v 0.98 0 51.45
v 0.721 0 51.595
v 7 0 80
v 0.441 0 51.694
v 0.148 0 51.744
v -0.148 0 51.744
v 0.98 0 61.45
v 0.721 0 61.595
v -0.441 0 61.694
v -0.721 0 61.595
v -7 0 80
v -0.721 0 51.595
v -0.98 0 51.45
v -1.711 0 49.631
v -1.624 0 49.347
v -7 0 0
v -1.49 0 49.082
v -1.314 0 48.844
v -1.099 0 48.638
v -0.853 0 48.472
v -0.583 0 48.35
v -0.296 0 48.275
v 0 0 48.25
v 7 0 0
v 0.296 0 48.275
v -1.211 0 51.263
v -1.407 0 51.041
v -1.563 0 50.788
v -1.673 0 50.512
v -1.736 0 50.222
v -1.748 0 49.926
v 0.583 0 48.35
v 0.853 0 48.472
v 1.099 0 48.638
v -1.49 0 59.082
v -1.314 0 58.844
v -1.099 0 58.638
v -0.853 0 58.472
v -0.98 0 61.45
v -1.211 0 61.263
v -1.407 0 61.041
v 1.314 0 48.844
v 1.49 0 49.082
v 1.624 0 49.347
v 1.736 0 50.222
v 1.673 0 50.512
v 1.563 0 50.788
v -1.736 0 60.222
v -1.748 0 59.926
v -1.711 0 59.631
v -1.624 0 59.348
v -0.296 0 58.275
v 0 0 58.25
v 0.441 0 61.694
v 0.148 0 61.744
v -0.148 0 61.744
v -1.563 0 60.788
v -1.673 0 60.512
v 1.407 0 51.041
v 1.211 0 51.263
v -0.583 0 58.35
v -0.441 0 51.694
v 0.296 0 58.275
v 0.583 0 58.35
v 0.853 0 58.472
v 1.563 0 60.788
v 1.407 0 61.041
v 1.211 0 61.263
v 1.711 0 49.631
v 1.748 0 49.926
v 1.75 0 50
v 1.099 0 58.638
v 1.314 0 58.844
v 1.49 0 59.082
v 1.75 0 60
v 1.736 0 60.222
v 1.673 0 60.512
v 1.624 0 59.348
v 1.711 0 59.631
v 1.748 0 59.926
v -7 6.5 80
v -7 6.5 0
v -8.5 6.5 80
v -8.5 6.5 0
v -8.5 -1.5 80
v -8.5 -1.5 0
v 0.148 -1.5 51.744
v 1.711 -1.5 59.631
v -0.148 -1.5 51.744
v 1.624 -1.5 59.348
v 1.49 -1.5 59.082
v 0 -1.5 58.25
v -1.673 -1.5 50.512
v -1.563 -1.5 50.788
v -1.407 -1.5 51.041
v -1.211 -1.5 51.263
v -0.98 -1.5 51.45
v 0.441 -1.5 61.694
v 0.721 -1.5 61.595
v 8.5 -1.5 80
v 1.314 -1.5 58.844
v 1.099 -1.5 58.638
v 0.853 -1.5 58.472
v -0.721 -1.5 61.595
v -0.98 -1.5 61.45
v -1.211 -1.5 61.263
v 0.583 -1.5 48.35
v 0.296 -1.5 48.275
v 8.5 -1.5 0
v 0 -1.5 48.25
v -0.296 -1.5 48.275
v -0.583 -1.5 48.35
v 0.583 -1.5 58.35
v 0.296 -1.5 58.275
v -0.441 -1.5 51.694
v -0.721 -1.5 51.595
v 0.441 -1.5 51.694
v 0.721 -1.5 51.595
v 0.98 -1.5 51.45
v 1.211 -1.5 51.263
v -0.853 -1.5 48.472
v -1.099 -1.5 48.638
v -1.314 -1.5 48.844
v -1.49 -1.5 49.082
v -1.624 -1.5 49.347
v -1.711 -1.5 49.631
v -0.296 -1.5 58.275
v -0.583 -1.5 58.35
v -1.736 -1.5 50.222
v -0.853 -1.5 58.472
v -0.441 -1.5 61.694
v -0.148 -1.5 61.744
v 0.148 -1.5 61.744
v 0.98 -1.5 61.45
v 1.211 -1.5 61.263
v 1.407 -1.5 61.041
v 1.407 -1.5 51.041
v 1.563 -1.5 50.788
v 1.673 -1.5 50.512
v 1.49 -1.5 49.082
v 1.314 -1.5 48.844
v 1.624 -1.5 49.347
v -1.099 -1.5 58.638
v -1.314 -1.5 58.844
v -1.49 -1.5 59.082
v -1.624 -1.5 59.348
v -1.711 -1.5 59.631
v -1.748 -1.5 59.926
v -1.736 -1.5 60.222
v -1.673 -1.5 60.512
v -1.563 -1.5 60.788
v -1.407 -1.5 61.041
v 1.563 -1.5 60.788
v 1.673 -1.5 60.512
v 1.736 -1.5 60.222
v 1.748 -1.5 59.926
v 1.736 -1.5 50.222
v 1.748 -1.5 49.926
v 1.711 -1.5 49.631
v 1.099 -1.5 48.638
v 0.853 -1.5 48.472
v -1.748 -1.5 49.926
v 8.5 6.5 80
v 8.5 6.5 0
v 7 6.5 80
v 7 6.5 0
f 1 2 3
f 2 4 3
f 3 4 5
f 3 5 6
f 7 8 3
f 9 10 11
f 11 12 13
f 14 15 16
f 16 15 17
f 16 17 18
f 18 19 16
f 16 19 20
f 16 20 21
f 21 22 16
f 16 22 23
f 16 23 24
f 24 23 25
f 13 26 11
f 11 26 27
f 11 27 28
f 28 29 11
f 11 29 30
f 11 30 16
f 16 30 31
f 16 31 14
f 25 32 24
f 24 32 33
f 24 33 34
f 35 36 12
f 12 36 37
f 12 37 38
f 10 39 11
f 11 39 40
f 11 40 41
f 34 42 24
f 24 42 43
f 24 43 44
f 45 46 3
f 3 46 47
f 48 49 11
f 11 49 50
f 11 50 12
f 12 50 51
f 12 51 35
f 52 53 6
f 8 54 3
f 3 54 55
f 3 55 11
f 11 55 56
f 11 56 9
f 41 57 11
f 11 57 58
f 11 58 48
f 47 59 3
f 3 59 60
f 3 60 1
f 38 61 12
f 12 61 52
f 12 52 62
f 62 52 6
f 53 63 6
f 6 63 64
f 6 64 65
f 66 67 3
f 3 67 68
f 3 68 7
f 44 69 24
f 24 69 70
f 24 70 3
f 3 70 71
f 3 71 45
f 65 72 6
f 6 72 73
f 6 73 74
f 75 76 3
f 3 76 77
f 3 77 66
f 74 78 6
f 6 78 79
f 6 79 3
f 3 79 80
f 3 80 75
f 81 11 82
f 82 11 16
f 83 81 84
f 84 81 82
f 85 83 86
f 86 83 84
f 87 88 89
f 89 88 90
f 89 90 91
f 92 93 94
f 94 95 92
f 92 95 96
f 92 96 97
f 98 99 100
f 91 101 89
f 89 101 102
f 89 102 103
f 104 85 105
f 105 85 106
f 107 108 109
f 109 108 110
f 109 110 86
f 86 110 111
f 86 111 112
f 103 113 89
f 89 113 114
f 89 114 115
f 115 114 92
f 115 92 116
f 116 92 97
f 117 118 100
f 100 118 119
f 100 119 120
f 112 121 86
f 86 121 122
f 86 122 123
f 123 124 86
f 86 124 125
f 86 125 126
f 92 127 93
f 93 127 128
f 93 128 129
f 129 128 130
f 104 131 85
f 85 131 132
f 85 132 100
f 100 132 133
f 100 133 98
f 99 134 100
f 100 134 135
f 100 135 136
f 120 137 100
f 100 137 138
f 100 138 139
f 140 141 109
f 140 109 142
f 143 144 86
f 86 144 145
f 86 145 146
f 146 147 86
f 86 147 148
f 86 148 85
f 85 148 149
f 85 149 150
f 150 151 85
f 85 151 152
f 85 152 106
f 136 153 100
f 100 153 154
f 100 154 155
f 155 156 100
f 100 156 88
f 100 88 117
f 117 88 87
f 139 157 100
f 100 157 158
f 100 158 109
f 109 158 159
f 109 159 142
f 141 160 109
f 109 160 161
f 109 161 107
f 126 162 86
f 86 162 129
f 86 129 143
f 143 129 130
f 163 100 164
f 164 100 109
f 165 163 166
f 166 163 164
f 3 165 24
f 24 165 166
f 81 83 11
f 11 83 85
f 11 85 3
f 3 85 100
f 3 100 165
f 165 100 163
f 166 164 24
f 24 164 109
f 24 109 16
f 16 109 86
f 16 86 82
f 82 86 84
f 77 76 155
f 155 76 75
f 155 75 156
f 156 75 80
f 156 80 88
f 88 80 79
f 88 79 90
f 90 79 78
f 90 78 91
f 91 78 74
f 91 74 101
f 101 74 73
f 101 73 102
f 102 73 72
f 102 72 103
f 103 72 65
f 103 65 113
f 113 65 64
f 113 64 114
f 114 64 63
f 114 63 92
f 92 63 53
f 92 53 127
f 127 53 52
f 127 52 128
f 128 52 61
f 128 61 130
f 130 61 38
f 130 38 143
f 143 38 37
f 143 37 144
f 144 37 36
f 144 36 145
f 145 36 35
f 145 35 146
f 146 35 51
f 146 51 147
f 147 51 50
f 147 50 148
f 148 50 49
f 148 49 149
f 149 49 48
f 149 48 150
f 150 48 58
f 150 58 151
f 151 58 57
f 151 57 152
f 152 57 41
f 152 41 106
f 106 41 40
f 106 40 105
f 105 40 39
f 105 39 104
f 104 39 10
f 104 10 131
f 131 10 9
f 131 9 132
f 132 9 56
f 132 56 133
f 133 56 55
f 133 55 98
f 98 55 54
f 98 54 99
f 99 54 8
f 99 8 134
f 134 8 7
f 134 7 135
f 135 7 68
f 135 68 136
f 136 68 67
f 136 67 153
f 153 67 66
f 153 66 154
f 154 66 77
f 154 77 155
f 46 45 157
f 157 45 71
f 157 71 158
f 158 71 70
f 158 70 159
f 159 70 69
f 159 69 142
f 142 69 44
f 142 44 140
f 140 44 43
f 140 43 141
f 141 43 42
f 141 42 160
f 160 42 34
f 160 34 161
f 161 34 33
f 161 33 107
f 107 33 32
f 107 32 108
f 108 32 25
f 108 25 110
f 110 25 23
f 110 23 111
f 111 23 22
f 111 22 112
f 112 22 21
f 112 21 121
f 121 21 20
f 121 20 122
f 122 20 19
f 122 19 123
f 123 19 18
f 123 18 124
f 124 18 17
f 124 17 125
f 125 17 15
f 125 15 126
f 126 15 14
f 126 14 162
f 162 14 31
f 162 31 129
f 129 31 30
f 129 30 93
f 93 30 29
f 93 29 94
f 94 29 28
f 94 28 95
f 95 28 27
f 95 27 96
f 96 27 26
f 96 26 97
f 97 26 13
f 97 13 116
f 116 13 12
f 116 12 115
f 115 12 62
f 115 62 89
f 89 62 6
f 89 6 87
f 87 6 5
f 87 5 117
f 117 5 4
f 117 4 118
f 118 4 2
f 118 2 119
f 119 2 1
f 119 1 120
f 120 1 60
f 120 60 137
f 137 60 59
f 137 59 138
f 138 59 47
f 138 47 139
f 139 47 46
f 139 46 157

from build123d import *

# Parameters (mm, degrees)
EXTRUDE_1_DEPTH     = 80
SKETCH_2_R          = 1.75
CUT_EXTRUDE_1_DEPTH = 81.847077869


with BuildPart() as part:
    # ｽｹｯﾁ1 → ﾎﾞｽ - 押し出し1 (new body)
    with BuildSketch(Plane.XY):
        Polygon((0, 0), (-7, 0), (-7, 6.5), (-8.5, 6.5), (-8.5, -1.5), (8.5, -1.5), (8.5, 6.5), (7, 6.5), (7, 0), align=None)
    extrude(amount=EXTRUDE_1_DEPTH)

    # ｽｹｯﾁ2 → ｶｯﾄ - 押し出し1 (cut, through all)
    with BuildSketch(Plane.XZ.offset(1.5)):
        with Locations(Location((0, 50, 0), (0, 0, 270))):
            Circle(SKETCH_2_R)
        with Locations(Location((0, 60, 0), (0, 0, 270))):
            Circle(SKETCH_2_R)
    extrude(amount=-CUT_EXTRUDE_1_DEPTH, mode=Mode.SUBTRACT)


solid = part.part
